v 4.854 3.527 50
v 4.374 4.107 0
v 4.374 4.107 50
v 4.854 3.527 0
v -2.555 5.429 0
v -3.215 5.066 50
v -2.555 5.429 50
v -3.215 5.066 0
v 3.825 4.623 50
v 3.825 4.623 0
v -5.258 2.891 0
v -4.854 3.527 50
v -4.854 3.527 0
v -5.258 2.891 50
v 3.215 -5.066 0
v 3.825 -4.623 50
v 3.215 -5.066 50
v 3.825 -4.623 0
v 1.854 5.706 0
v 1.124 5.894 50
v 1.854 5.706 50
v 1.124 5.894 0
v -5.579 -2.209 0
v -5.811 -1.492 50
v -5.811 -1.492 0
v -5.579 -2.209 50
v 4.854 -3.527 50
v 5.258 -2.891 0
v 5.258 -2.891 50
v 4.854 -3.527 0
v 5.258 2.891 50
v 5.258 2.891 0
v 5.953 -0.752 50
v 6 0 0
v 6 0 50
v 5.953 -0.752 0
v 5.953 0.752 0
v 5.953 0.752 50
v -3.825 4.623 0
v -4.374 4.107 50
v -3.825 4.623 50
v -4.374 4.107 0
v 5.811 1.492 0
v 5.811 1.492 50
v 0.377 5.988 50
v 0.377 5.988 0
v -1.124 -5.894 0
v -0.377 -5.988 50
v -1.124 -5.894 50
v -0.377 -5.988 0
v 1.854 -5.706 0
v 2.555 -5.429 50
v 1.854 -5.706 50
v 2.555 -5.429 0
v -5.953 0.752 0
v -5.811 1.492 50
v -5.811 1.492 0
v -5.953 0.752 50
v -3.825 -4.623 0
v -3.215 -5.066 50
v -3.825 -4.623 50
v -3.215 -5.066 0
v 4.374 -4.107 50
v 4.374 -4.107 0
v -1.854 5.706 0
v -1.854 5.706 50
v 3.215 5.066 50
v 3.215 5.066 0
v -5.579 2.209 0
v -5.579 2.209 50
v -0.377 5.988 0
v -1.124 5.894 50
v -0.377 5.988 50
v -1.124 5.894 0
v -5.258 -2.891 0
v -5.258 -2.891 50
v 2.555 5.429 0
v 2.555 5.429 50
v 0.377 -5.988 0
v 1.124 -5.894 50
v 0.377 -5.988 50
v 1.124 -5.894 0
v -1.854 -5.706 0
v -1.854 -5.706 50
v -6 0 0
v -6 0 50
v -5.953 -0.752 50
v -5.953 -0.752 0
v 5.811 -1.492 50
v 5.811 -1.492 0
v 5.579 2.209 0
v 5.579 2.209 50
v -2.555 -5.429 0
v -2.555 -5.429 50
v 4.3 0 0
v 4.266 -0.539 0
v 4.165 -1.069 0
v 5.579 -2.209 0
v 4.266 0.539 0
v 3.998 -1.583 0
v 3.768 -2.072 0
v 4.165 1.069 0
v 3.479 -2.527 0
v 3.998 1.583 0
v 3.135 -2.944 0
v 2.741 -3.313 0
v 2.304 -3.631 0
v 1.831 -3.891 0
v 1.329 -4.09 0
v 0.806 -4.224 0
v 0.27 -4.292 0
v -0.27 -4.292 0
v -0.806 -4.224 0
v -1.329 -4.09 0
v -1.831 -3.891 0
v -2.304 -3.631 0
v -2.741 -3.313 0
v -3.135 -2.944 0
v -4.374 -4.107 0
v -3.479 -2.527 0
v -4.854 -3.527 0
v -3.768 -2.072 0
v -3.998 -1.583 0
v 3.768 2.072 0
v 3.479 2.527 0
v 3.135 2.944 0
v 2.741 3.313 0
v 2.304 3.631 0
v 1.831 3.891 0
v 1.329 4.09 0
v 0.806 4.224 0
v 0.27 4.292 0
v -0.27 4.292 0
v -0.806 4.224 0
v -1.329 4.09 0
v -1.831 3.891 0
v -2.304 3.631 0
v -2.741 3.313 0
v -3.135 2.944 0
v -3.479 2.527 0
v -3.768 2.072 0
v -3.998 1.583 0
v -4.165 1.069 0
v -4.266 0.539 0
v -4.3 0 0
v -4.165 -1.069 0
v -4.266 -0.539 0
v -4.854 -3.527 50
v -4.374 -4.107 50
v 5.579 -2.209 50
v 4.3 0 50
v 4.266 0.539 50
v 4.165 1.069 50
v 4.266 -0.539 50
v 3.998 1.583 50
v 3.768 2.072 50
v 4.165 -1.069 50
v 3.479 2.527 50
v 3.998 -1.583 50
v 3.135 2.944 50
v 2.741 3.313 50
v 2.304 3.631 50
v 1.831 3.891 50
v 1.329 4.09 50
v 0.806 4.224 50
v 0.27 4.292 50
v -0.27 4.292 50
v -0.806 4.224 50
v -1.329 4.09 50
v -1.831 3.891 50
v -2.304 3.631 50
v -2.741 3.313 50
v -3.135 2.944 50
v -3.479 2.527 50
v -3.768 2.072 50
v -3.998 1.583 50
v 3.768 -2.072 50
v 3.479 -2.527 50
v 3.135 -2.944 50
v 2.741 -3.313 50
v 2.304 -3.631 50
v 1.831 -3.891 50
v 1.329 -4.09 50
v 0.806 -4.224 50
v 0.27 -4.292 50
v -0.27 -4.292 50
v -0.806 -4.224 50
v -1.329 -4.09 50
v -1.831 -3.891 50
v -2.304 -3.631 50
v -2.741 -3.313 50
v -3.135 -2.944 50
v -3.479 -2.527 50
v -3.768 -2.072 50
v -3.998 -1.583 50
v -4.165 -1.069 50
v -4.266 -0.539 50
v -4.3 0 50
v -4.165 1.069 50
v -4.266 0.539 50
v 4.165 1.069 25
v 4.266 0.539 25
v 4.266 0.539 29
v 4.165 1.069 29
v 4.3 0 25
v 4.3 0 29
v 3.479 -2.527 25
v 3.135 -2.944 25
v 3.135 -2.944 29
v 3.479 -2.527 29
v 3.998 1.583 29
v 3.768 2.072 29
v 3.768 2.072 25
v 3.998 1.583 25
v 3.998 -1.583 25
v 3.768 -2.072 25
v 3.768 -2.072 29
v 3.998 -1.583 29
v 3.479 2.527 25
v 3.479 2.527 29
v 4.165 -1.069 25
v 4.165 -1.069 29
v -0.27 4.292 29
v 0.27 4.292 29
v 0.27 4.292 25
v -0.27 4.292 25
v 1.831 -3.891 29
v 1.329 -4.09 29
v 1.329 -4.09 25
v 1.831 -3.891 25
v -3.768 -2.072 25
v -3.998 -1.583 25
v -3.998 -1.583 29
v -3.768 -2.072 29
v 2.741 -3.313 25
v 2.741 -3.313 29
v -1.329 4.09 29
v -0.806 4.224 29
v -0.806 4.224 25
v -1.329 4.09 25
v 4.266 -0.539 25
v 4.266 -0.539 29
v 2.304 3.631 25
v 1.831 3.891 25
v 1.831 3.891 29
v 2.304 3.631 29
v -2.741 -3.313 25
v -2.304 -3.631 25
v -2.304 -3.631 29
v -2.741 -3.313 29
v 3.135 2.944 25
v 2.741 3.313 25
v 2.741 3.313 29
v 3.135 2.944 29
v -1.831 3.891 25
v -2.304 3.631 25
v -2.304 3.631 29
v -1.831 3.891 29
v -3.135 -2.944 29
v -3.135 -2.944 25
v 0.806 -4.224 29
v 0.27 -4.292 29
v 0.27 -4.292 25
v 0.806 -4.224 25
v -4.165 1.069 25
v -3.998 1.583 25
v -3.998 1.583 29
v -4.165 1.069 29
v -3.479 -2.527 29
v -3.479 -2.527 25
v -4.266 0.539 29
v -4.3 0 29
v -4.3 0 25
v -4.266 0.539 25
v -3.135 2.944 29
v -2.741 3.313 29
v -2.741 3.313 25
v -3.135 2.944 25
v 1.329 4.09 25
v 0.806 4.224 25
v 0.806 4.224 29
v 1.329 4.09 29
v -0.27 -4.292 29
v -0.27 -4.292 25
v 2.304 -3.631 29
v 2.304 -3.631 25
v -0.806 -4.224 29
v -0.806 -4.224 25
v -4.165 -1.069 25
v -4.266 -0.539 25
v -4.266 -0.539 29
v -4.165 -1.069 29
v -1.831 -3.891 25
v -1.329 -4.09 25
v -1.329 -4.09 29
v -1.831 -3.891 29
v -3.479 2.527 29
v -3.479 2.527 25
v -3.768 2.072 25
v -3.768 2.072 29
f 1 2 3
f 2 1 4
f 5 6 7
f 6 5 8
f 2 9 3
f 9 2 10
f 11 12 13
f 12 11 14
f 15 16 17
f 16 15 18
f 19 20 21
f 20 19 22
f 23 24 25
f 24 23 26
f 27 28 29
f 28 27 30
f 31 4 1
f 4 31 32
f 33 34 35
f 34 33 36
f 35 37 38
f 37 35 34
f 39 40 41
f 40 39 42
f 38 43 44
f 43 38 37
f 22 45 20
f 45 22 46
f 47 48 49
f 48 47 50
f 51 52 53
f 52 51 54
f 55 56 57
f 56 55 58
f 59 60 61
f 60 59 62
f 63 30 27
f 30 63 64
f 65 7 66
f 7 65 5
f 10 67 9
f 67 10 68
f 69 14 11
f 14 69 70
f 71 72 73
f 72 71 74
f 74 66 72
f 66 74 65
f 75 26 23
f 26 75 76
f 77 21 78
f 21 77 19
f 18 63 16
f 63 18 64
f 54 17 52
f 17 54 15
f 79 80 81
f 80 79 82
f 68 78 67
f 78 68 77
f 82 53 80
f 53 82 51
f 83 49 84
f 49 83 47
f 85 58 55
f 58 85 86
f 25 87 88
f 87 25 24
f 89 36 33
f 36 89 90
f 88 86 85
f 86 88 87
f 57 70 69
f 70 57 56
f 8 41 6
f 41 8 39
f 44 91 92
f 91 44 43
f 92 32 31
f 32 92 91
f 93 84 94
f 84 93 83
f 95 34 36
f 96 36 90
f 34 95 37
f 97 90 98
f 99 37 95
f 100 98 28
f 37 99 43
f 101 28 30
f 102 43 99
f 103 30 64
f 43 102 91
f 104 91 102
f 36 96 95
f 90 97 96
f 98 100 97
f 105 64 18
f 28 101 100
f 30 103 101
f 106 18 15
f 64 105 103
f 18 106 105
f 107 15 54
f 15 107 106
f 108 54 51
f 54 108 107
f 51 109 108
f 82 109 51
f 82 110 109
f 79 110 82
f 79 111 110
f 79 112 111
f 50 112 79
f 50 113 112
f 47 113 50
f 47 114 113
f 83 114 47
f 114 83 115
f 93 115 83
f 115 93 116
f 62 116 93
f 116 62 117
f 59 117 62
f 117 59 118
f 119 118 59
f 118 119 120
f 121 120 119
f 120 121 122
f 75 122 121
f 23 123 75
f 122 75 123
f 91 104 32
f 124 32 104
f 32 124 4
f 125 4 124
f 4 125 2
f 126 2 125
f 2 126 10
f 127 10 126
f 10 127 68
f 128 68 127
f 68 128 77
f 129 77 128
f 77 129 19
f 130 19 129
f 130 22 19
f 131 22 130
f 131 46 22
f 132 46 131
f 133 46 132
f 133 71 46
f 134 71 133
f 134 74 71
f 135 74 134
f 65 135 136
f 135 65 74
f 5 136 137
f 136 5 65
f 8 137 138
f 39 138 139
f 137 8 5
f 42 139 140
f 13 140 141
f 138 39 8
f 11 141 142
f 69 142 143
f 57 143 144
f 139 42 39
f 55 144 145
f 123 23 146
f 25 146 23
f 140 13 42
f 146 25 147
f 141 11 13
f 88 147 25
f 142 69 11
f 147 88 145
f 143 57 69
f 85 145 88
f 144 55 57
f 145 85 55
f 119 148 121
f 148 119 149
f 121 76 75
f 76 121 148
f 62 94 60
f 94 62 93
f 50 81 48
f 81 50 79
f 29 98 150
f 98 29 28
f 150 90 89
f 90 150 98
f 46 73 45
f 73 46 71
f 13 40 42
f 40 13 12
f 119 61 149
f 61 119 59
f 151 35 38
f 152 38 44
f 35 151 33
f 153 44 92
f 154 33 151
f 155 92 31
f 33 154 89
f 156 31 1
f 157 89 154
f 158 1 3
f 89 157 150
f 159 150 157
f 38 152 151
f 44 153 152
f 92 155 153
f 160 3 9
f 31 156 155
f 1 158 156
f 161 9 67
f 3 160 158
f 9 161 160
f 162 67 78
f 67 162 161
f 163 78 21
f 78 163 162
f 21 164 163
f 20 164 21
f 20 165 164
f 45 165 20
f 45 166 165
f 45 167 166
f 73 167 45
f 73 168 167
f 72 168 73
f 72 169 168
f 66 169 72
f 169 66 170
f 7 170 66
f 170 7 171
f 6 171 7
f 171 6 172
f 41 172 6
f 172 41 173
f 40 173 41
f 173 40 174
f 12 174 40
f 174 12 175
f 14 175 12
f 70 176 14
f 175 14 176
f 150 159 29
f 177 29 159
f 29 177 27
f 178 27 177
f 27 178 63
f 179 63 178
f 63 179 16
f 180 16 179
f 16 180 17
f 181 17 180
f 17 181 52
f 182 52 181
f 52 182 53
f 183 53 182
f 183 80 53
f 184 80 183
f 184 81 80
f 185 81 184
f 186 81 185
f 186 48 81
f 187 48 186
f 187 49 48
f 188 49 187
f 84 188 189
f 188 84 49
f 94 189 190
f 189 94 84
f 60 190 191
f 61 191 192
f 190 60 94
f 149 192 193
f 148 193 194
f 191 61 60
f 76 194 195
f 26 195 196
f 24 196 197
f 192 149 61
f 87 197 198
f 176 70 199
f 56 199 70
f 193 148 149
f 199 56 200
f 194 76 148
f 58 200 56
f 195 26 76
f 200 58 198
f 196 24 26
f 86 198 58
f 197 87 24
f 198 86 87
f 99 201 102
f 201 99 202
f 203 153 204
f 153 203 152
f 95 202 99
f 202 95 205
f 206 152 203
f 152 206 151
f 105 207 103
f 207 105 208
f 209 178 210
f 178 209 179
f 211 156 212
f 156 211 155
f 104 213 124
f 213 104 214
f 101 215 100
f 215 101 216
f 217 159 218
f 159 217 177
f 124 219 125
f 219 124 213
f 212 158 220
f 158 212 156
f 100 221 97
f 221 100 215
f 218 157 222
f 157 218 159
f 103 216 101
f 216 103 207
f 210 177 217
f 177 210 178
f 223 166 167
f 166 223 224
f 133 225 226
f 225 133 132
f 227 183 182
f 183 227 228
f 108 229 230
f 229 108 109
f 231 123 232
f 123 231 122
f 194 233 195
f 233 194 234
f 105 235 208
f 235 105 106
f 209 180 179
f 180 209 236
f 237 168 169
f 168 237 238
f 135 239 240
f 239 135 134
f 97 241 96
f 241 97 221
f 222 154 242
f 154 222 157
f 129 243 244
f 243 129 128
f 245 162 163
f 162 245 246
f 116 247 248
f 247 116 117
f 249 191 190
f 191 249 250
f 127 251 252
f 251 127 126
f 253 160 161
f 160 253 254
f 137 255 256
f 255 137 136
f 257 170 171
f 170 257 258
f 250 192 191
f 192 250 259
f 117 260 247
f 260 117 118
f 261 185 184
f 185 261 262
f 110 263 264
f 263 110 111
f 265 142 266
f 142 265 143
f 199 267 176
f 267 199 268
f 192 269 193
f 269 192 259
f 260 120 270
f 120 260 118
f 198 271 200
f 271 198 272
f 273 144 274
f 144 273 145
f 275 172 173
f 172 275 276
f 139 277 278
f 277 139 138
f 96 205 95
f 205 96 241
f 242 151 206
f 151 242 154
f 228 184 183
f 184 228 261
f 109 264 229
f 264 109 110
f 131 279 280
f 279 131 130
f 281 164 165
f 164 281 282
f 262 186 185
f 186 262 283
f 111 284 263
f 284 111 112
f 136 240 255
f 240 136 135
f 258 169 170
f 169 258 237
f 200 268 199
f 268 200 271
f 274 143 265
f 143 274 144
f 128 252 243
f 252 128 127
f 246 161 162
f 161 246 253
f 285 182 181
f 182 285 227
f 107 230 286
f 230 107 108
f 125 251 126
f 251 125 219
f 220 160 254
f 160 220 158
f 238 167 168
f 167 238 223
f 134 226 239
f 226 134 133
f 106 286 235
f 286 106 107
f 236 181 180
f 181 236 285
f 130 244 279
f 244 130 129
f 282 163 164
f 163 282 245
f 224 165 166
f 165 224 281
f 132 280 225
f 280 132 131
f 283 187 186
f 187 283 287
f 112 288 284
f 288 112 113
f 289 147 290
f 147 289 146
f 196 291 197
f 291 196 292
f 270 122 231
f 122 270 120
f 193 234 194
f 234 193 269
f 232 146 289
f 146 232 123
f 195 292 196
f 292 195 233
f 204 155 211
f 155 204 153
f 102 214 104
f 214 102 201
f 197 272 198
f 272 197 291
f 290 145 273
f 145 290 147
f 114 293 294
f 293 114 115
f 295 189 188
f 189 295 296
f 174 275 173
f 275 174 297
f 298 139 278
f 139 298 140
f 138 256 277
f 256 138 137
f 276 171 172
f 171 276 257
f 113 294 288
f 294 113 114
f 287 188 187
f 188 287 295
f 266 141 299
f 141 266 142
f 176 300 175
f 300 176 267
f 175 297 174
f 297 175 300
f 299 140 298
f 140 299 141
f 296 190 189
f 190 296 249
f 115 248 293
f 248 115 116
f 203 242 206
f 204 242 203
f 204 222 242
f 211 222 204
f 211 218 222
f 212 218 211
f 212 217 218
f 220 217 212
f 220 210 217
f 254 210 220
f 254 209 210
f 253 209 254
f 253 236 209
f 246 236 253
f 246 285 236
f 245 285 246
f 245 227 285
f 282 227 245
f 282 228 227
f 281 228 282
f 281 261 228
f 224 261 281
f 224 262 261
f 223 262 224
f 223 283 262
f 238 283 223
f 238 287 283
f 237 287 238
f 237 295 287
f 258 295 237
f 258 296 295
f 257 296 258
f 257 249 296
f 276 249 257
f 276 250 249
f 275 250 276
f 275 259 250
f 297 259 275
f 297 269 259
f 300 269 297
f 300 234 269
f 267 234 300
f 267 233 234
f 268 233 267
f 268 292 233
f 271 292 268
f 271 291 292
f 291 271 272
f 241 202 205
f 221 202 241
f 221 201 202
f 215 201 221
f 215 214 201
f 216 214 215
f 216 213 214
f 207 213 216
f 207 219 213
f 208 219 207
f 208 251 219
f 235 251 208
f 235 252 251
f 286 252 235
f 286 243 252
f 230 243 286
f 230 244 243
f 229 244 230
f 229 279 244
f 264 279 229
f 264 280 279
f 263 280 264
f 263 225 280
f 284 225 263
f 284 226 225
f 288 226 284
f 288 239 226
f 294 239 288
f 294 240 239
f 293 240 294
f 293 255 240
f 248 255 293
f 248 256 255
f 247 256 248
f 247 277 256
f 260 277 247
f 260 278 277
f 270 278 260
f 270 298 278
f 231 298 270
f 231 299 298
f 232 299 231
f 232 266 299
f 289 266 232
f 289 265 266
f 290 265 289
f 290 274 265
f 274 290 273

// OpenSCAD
$fn=50;

difference() {
    cylinder(h=50, d=12);
    cylinder(h=50, d=8.6);
}
translate([0, 0, 25]) cylinder(h=4, d=12);
